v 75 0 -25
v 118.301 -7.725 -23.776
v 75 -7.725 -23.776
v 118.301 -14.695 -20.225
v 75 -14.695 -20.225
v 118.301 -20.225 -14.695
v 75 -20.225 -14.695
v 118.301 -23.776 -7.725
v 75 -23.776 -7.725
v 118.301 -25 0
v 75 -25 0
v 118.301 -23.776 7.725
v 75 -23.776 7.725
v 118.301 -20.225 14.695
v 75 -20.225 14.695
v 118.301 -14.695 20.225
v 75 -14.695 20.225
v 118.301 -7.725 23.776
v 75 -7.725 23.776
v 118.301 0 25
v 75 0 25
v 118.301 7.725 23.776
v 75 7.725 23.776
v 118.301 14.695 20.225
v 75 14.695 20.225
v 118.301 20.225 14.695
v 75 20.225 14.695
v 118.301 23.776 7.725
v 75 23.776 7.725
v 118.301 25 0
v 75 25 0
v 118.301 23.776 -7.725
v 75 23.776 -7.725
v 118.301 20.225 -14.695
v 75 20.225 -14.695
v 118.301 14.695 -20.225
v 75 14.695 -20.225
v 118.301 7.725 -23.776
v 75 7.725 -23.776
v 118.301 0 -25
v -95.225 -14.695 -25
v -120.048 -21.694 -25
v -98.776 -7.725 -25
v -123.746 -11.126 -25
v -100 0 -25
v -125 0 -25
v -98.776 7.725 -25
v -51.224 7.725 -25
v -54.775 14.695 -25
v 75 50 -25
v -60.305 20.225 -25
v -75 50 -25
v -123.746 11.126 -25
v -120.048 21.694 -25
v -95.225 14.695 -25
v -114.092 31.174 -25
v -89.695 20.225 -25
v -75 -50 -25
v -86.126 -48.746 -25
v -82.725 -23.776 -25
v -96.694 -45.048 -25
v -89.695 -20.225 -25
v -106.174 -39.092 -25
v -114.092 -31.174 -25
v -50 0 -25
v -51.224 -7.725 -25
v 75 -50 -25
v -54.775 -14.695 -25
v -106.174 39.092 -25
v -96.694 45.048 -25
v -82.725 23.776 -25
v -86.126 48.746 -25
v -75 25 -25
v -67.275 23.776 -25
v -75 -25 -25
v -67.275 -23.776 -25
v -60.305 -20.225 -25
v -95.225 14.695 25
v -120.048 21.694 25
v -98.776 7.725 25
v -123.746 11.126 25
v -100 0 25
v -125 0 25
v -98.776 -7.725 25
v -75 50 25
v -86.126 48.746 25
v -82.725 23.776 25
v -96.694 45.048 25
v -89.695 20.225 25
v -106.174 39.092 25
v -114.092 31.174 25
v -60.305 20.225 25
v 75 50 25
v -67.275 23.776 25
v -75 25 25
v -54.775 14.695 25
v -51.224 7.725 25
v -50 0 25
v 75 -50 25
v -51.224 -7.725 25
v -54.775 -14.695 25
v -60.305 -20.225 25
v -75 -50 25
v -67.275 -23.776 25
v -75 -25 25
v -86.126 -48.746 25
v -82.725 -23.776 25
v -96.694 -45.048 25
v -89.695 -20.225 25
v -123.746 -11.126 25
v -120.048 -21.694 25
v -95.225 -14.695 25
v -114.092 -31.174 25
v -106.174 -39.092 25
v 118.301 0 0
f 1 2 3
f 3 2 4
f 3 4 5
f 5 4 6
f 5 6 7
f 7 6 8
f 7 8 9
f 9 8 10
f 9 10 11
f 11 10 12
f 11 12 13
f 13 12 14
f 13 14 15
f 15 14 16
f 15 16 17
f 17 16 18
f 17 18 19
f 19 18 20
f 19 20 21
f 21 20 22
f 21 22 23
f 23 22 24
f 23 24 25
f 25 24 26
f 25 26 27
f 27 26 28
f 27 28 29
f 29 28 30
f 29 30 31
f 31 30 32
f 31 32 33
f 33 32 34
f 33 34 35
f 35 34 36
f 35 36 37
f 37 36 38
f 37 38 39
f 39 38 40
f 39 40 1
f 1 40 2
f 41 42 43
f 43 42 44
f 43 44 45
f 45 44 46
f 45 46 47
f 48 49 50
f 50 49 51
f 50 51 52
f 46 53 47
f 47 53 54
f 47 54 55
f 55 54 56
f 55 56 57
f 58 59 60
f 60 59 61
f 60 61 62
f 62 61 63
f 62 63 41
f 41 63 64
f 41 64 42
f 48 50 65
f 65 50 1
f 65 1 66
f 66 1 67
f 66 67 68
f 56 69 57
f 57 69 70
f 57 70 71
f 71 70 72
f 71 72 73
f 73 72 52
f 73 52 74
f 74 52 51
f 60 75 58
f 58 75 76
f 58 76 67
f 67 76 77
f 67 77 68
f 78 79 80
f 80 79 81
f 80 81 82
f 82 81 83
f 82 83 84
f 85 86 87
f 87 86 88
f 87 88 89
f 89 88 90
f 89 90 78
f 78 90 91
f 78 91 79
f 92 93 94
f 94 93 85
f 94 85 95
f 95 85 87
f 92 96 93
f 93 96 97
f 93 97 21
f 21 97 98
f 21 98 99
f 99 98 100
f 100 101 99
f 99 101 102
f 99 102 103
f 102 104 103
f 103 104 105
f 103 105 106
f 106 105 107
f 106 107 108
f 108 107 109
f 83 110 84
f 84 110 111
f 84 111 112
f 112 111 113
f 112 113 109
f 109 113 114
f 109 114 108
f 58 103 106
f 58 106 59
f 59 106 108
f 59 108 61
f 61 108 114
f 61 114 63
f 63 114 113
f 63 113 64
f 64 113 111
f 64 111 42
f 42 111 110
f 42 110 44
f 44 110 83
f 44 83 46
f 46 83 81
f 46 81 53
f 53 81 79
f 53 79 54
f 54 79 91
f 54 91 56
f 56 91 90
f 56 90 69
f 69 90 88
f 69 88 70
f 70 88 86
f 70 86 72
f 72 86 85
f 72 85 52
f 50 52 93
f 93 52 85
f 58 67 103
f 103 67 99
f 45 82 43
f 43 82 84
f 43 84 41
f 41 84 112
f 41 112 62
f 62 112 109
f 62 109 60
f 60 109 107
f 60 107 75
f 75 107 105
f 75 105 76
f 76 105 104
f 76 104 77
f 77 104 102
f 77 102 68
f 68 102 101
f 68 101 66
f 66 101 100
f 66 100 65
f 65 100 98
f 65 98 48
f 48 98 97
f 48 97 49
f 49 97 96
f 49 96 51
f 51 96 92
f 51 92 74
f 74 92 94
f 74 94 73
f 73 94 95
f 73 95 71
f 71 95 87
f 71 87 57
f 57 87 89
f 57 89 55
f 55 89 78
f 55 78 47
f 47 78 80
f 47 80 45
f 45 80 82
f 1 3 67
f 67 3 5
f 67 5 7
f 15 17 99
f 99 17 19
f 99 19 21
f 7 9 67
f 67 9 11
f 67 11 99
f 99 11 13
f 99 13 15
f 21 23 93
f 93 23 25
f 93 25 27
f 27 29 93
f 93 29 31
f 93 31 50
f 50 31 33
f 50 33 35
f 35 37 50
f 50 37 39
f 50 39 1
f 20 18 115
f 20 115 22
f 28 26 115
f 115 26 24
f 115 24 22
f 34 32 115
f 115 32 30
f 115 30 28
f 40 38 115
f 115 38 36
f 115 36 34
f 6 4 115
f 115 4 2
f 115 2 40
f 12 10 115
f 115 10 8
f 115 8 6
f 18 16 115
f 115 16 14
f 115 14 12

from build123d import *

# Parameters (mm, degrees)
SKETCH1_R                      = 25
BOSS_EXTRUDE1_DEPTH            = 25
CUT_EXTRUDE1_DEPTH             = 50
CUT_EXTRUDE2_REACH             = 138.931
SKETCH3_W                      = 6.698729811
SKETCH3_H                      = 50
CUT_EXTRUDE2_DIRECTION_2_REACH = 138.931


with BuildPart() as part:
    # Sketch1 → Boss-Extrude1 (new, symmetric)
    with BuildSketch(Plane.XY):
        with BuildLine():
            Line((-75, 50), (75, 50))
            ThreePointArc((75, 50), (125, 0), (75, -50))
            Line((75, -50), (-75, -50))
            ThreePointArc((-75, -50), (-125, 0), (-75, 50))
        make_face()
        with Locations((-75, 0)):
            Circle(SKETCH1_R, mode=Mode.SUBTRACT)
    extrude(amount=BOSS_EXTRUDE1_DEPTH, both=True)

    # Sketch2 → Cut-Extrude1 (cut)
    with BuildSketch(Plane(origin=(75, 0, 0), x_dir=(0, 0, -1), z_dir=(1, 0, 0))):
        with BuildLine():
            Line((25, 50), (-25, 50))
            Line((-25, 50), (-25, -5.1e-08))
            ThreePointArc((-25, -5.1e-08), (-2.6e-08, 25), (25, 0))
            Line((25, 0), (25, 50))
        make_face()
        with BuildLine():
            ThreePointArc((25, 0), (2.6e-08, -25), (-25, -5.1e-08))
            Line((-25, -5.1e-08), (-25, -50))
            Line((-25, -50), (25, -50))
            Line((25, -50), (25, 0))
        make_face()
    extrude(amount=CUT_EXTRUDE1_DEPTH, mode=Mode.SUBTRACT)

    # Sketch3 → Cut-Extrude2 (cut, up to next)
    with BuildSketch(Plane.XY, mode=Mode.PRIVATE) as cut_extrude2_sk1:
        with Locations((121.650635095, 0)):
            Rectangle(SKETCH3_W, SKETCH3_H)
    cut_extrude2_tool1 = extrude(cut_extrude2_sk1.sketch, amount=-CUT_EXTRUDE2_REACH, mode=Mode.PRIVATE) & part.part
    add(cut_extrude2_tool1.solids().sort_by_distance((121.650635, 0, 0))[0], mode=Mode.SUBTRACT)

    # Sketch3 → Cut-Extrude2 direction 2 (cut, up to next)
    with BuildSketch(Plane.XY, mode=Mode.PRIVATE) as cut_extrude2_direction_2_sk1:
        with Locations((121.650635095, 0)):
            Rectangle(SKETCH3_W, SKETCH3_H)
    cut_extrude2_direction_2_tool1 = extrude(cut_extrude2_direction_2_sk1.sketch, amount=CUT_EXTRUDE2_DIRECTION_2_REACH, mode=Mode.PRIVATE) & part.part
    add(cut_extrude2_direction_2_tool1.solids().sort_by_distance((121.650635, 0, 0))[0], mode=Mode.SUBTRACT)


solid = part.part
